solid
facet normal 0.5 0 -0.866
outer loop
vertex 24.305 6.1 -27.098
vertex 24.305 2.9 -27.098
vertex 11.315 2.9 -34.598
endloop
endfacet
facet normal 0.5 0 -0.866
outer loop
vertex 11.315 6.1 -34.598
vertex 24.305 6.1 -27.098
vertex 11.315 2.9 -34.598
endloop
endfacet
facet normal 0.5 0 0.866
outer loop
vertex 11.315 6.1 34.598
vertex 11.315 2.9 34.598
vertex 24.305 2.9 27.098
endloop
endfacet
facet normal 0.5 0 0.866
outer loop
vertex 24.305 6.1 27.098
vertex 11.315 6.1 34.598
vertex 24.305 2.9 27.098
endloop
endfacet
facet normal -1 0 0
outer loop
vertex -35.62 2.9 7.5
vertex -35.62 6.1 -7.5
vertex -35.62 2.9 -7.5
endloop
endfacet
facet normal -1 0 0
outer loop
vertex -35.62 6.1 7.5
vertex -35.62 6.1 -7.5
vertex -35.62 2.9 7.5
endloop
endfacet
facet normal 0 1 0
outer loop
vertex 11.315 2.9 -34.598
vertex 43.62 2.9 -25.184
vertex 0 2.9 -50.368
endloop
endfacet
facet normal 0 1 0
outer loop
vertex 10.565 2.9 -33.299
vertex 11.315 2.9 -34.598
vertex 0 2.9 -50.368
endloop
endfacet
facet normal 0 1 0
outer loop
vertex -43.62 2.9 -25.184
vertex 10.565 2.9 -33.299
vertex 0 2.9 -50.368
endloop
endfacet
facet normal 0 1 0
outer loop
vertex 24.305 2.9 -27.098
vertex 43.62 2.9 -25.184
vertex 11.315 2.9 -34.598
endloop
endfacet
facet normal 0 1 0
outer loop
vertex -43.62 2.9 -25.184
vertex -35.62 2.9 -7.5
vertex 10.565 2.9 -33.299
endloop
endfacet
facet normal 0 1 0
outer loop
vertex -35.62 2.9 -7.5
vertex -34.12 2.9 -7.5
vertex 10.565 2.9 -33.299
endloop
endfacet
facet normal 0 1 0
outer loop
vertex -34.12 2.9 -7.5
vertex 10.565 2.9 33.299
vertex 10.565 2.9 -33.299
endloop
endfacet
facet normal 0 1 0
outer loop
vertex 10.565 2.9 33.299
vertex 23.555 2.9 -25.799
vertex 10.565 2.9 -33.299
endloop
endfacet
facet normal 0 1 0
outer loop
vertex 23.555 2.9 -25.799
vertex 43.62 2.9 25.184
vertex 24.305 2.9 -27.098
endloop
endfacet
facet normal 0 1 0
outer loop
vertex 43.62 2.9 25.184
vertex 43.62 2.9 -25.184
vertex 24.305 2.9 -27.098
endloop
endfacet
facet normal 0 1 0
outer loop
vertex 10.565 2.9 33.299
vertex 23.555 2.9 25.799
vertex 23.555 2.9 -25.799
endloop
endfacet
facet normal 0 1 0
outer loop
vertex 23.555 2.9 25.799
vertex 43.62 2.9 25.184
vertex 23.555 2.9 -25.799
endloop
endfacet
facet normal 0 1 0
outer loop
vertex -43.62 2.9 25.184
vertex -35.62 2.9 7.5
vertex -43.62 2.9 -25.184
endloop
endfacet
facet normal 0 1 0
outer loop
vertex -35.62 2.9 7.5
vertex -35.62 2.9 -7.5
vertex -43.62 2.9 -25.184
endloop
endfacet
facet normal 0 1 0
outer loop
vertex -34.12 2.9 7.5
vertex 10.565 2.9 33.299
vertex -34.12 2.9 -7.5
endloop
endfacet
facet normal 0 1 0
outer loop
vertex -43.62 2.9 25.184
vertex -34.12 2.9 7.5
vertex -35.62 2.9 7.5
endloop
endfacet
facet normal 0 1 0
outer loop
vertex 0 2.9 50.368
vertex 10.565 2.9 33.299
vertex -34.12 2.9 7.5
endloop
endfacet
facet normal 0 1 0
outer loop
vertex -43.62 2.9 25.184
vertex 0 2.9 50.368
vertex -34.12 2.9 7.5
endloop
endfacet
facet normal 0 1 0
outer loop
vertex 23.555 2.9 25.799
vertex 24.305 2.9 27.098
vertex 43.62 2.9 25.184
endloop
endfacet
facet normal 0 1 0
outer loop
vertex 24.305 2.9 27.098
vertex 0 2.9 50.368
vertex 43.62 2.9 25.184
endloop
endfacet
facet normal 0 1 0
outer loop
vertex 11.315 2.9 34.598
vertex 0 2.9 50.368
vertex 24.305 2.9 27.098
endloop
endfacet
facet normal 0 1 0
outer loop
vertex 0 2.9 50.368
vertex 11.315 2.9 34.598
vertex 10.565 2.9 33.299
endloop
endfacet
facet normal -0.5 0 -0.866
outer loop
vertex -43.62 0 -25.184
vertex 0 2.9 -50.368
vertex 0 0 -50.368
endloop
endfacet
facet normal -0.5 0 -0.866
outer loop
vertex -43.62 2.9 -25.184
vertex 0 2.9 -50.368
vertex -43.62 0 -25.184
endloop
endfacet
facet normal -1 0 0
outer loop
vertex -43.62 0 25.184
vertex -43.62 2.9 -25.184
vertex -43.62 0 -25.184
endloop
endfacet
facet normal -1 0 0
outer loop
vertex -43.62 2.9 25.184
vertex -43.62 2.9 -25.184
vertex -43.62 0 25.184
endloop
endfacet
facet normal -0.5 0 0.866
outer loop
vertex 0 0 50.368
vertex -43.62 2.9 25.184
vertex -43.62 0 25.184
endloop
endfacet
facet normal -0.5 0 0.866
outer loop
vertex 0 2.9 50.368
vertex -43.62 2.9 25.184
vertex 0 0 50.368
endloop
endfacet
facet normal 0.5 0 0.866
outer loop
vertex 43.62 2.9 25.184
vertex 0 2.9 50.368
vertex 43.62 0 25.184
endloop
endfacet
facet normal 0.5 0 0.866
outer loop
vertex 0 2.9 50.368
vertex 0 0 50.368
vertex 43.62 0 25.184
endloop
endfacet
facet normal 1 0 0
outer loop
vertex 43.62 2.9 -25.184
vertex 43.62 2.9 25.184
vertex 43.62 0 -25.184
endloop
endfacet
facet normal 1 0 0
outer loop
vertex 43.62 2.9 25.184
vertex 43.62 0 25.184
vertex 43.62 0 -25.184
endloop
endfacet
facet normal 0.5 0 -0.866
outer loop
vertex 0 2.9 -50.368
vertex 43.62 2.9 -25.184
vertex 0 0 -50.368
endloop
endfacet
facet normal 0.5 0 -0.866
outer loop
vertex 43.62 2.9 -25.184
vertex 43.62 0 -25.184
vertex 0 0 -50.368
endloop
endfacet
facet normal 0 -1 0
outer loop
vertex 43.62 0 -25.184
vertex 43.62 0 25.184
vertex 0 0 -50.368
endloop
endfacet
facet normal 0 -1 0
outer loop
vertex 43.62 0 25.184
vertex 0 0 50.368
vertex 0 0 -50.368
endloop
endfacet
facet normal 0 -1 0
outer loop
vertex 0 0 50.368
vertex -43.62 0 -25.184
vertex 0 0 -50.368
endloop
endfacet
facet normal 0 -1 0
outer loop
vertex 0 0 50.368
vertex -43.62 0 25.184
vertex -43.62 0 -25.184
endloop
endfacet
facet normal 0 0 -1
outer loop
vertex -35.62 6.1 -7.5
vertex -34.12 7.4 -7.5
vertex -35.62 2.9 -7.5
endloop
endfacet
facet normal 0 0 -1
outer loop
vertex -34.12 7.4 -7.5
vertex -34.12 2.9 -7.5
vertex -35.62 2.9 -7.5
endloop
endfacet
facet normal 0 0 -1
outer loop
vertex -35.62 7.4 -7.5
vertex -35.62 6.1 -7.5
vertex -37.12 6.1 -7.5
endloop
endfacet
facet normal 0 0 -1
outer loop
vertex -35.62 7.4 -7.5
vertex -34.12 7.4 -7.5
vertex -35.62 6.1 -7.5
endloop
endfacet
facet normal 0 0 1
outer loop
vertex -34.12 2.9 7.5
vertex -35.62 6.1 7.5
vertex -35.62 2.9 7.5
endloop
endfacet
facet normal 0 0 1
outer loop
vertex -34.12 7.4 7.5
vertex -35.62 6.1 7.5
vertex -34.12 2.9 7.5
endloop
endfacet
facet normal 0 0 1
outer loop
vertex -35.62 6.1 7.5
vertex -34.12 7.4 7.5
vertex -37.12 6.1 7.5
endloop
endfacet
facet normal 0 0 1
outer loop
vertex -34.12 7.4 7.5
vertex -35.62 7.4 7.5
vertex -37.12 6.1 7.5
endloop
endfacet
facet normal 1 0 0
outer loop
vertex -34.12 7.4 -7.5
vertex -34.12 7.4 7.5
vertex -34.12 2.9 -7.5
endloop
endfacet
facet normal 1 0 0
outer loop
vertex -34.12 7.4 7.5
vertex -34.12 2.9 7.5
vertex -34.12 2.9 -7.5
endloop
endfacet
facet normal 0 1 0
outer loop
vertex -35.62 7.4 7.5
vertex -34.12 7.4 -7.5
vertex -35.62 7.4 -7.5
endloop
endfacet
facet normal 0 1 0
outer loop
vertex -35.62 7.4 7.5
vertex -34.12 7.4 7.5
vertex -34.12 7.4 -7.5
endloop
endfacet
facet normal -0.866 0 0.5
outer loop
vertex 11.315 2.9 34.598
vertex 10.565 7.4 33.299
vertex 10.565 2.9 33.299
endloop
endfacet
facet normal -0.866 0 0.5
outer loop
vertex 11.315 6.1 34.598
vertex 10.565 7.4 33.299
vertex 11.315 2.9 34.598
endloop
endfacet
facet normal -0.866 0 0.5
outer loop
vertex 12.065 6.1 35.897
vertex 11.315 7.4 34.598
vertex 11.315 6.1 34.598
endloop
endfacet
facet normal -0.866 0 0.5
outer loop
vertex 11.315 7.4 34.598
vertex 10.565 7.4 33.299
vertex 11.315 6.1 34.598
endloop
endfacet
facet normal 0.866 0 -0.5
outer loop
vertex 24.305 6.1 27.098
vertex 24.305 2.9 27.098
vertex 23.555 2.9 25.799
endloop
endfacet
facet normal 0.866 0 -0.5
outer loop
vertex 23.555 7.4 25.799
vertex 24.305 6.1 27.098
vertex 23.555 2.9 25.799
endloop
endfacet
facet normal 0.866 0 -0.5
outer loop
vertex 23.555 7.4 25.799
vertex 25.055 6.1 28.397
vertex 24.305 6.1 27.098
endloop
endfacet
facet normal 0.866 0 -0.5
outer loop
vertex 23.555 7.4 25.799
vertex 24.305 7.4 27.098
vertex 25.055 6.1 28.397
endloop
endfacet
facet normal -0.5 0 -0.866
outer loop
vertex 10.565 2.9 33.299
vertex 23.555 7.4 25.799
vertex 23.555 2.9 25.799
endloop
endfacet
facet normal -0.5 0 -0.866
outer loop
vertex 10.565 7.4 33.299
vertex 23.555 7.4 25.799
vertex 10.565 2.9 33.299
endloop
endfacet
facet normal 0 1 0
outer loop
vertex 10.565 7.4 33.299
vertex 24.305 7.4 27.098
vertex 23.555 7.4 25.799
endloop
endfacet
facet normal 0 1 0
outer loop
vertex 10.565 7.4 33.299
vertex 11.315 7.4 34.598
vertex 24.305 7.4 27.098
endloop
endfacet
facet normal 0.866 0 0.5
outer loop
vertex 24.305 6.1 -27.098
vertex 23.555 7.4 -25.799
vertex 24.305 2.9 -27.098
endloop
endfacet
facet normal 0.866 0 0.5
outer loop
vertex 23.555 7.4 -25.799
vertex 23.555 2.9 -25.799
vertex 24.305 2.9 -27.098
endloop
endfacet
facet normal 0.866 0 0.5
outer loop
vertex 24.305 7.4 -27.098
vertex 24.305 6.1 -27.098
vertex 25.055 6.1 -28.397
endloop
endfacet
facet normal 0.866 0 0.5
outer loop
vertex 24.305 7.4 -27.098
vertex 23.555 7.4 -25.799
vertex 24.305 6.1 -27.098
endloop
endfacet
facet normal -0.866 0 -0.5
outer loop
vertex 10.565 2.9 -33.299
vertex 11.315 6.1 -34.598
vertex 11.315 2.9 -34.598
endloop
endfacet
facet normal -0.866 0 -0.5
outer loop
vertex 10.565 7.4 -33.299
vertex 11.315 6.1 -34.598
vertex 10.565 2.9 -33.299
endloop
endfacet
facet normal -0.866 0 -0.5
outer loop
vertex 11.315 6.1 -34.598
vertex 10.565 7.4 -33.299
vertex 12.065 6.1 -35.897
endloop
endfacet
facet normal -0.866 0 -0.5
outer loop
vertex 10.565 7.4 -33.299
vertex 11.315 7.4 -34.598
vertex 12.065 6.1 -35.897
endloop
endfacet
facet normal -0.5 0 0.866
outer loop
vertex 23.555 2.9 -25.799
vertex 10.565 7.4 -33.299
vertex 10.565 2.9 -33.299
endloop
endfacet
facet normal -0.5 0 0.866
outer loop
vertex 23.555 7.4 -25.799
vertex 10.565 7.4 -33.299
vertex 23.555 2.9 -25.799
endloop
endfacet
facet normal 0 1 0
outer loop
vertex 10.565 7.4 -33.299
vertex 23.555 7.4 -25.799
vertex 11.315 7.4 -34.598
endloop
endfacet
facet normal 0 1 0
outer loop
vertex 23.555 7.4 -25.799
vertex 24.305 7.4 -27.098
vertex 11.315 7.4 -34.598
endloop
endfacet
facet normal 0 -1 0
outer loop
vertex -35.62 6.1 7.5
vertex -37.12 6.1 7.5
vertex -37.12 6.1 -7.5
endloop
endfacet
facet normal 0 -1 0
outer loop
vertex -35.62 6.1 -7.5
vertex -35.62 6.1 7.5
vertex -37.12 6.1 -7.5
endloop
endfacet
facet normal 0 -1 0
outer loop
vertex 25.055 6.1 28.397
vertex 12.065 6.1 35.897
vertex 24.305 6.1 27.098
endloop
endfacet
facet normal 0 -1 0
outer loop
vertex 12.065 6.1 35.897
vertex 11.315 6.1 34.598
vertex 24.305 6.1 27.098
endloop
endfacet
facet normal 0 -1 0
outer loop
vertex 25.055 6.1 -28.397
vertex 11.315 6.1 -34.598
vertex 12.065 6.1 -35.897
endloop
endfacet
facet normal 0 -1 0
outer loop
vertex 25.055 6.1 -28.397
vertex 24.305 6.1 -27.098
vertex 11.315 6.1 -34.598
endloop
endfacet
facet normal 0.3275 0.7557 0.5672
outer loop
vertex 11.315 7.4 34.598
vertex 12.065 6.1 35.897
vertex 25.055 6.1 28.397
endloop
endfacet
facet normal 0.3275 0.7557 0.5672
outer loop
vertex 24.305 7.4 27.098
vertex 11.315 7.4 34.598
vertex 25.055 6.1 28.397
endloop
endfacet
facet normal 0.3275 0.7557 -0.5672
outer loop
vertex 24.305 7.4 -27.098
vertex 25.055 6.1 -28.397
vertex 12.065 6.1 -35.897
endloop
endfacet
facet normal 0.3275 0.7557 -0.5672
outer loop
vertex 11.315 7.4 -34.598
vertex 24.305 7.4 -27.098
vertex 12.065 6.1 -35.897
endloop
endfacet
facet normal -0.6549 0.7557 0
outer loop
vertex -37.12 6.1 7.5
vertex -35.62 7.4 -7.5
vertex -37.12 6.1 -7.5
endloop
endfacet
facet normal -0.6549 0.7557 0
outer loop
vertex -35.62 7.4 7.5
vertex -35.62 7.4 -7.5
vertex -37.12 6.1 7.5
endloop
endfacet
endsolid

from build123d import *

# Parameters (mm, degrees)
RESSALTO_EXTRUS_O1_DEPTH  = 2.9
RESSALTO_EXTRUS_O8_DEPTH  = 4.5
ESBO_O11_W                = 15
ESBO_O11_H                = 1.3
RESSALTO_EXTRUS_O12_DEPTH = 1.5
ESBO_O15_W                = 15
ESBO_O15_H                = 1.3
RESSALTO_EXTRUS_O13_DEPTH = 1.5
ESBO_O16_W                = 15
ESBO_O16_H                = 1.3
RESSALTO_EXTRUS_O14_DEPTH = 1.5
CORTE_EXTRUS_O5_DEPTH     = 75.128633488
CORTE_EXTRUS_O8_DEPTH     = 75.128633488
CORTE_EXTRUS_O9_DEPTH     = 73.843490871


with BuildPart() as part:
    # Esboço1 → Ressalto-extrusão1 (new body)
    with BuildSketch(Plane(origin=(0, 0, 0), x_dir=(1, 0, 0), z_dir=(0, 1, 0))):
        Polygon((-43.62, 11.068078609), (-43.62, 25.184018742), (-12.224762753, 43.310067418), (0, 50.368037484), (31.395237247, 32.241988808), (43.62, 25.184018742), (43.62, -11.068078609), (43.62, -25.184018742), (12.224762753, -43.310067418), (0, -50.368037484), (-31.395237247, -32.241988808), (-43.62, -25.184018742), align=None)
    extrude(amount=RESSALTO_EXTRUS_O1_DEPTH)

    # Esboço4 → Ressalto-extrusão8 (add)
    with BuildSketch(Plane(origin=(0, 2.9, 0), x_dir=(1, 0, 0), z_dir=(0, 1, 0))):
        Polygon((-34.12, 0), (-34.12, 7.5), (-35.62, 7.5), (-35.62, -7.5), (-34.12, -7.5), align=None)
        Polygon((17.06, -29.548786777), (10.564809472, -33.298786777), (11.314809472, -34.597824883), (24.305190528, -27.097824883), (23.555190528, -25.798786777), align=None)
        Polygon((17.06, 29.548786777), (23.555190528, 25.798786777), (24.305190528, 27.097824883), (11.314809472, 34.597824883), (10.564809472, 33.298786777), align=None)
    extrude(amount=RESSALTO_EXTRUS_O8_DEPTH)

    # Esboço11 → Ressalto-extrusão12 (add)
    with BuildSketch(Plane.ZY.offset(35.62)):
        with Locations((0, 6.75)):
            Rectangle(ESBO_O11_W, ESBO_O11_H)
    extrude(amount=RESSALTO_EXTRUS_O12_DEPTH)

    # Esboço15 → Ressalto-extrusão13 (add)
    with BuildSketch(Plane(origin=(17.81, 0, 30.847824883), x_dir=(0.8660254037844386, 0, -0.5000000000000001), z_dir=(0.5000000000000001, 0, 0.8660254037844386))):
        with Locations((0, 6.75)):
            Rectangle(ESBO_O15_W, ESBO_O15_H)
    extrude(amount=RESSALTO_EXTRUS_O13_DEPTH)

    # Esboço16 → Ressalto-extrusão14 (add)
    with BuildSketch(Plane(origin=(17.81, 0, -30.847824883), x_dir=(-0.8660254037844386, 0, -0.5000000000000003), z_dir=(0.5000000000000003, 0, -0.8660254037844386))):
        with Locations((0, 6.75)):
            Rectangle(ESBO_O16_W, ESBO_O16_H)
    extrude(amount=RESSALTO_EXTRUS_O14_DEPTH)

    # Esboço17 → Corte-extrusão5 (cut, through all)
    with BuildSketch(Plane(origin=(-6.495190528, 0, 3.75), x_dir=(0.5000000000000064, 0, 0.866025403784435), z_dir=(-0.866025403784435, 0, 0.5000000000000064))):
        Polygon((35.62, 7.4), (37.12, 6.1), (38.522776478, 5.843708375), (38.659652416, 9.391906634), (36.37, 10.122640071), align=None)
    extrude(amount=-CORTE_EXTRUS_O5_DEPTH, mode=Mode.SUBTRACT)

    # Esboço18 → Corte-extrusão8 (cut, through all)
    with BuildSketch(Plane(origin=(6.495190528, 0, 3.75), x_dir=(0.5000000000000058, 0, -0.8660254037844354), z_dir=(0.8660254037844353, 0, 0.5000000000000057))):
        Polygon((35.62, 7.892314529), (37.556003767, 7.892314529), (38.139037221, 7.11493659), (37.685566756, 6.037944237), (37.12, 6.1), (35.62, 7.4), align=None)
    extrude(amount=-CORTE_EXTRUS_O8_DEPTH, mode=Mode.SUBTRACT)

    # Esboço19 → Corte-extrusão9 (cut, through all)
    with BuildSketch(Plane.XY.offset(7.5)):
        Polygon((-35.62, 8.416432615), (-35.62, 7.4), (-37.12, 6.1), (-37.526082167, 5.478521924), (-38.26778421, 5.863821686), (-38.576024021, 7.74215803), align=None)
    extrude(amount=-CORTE_EXTRUS_O9_DEPTH, mode=Mode.SUBTRACT)


solid = part.part
